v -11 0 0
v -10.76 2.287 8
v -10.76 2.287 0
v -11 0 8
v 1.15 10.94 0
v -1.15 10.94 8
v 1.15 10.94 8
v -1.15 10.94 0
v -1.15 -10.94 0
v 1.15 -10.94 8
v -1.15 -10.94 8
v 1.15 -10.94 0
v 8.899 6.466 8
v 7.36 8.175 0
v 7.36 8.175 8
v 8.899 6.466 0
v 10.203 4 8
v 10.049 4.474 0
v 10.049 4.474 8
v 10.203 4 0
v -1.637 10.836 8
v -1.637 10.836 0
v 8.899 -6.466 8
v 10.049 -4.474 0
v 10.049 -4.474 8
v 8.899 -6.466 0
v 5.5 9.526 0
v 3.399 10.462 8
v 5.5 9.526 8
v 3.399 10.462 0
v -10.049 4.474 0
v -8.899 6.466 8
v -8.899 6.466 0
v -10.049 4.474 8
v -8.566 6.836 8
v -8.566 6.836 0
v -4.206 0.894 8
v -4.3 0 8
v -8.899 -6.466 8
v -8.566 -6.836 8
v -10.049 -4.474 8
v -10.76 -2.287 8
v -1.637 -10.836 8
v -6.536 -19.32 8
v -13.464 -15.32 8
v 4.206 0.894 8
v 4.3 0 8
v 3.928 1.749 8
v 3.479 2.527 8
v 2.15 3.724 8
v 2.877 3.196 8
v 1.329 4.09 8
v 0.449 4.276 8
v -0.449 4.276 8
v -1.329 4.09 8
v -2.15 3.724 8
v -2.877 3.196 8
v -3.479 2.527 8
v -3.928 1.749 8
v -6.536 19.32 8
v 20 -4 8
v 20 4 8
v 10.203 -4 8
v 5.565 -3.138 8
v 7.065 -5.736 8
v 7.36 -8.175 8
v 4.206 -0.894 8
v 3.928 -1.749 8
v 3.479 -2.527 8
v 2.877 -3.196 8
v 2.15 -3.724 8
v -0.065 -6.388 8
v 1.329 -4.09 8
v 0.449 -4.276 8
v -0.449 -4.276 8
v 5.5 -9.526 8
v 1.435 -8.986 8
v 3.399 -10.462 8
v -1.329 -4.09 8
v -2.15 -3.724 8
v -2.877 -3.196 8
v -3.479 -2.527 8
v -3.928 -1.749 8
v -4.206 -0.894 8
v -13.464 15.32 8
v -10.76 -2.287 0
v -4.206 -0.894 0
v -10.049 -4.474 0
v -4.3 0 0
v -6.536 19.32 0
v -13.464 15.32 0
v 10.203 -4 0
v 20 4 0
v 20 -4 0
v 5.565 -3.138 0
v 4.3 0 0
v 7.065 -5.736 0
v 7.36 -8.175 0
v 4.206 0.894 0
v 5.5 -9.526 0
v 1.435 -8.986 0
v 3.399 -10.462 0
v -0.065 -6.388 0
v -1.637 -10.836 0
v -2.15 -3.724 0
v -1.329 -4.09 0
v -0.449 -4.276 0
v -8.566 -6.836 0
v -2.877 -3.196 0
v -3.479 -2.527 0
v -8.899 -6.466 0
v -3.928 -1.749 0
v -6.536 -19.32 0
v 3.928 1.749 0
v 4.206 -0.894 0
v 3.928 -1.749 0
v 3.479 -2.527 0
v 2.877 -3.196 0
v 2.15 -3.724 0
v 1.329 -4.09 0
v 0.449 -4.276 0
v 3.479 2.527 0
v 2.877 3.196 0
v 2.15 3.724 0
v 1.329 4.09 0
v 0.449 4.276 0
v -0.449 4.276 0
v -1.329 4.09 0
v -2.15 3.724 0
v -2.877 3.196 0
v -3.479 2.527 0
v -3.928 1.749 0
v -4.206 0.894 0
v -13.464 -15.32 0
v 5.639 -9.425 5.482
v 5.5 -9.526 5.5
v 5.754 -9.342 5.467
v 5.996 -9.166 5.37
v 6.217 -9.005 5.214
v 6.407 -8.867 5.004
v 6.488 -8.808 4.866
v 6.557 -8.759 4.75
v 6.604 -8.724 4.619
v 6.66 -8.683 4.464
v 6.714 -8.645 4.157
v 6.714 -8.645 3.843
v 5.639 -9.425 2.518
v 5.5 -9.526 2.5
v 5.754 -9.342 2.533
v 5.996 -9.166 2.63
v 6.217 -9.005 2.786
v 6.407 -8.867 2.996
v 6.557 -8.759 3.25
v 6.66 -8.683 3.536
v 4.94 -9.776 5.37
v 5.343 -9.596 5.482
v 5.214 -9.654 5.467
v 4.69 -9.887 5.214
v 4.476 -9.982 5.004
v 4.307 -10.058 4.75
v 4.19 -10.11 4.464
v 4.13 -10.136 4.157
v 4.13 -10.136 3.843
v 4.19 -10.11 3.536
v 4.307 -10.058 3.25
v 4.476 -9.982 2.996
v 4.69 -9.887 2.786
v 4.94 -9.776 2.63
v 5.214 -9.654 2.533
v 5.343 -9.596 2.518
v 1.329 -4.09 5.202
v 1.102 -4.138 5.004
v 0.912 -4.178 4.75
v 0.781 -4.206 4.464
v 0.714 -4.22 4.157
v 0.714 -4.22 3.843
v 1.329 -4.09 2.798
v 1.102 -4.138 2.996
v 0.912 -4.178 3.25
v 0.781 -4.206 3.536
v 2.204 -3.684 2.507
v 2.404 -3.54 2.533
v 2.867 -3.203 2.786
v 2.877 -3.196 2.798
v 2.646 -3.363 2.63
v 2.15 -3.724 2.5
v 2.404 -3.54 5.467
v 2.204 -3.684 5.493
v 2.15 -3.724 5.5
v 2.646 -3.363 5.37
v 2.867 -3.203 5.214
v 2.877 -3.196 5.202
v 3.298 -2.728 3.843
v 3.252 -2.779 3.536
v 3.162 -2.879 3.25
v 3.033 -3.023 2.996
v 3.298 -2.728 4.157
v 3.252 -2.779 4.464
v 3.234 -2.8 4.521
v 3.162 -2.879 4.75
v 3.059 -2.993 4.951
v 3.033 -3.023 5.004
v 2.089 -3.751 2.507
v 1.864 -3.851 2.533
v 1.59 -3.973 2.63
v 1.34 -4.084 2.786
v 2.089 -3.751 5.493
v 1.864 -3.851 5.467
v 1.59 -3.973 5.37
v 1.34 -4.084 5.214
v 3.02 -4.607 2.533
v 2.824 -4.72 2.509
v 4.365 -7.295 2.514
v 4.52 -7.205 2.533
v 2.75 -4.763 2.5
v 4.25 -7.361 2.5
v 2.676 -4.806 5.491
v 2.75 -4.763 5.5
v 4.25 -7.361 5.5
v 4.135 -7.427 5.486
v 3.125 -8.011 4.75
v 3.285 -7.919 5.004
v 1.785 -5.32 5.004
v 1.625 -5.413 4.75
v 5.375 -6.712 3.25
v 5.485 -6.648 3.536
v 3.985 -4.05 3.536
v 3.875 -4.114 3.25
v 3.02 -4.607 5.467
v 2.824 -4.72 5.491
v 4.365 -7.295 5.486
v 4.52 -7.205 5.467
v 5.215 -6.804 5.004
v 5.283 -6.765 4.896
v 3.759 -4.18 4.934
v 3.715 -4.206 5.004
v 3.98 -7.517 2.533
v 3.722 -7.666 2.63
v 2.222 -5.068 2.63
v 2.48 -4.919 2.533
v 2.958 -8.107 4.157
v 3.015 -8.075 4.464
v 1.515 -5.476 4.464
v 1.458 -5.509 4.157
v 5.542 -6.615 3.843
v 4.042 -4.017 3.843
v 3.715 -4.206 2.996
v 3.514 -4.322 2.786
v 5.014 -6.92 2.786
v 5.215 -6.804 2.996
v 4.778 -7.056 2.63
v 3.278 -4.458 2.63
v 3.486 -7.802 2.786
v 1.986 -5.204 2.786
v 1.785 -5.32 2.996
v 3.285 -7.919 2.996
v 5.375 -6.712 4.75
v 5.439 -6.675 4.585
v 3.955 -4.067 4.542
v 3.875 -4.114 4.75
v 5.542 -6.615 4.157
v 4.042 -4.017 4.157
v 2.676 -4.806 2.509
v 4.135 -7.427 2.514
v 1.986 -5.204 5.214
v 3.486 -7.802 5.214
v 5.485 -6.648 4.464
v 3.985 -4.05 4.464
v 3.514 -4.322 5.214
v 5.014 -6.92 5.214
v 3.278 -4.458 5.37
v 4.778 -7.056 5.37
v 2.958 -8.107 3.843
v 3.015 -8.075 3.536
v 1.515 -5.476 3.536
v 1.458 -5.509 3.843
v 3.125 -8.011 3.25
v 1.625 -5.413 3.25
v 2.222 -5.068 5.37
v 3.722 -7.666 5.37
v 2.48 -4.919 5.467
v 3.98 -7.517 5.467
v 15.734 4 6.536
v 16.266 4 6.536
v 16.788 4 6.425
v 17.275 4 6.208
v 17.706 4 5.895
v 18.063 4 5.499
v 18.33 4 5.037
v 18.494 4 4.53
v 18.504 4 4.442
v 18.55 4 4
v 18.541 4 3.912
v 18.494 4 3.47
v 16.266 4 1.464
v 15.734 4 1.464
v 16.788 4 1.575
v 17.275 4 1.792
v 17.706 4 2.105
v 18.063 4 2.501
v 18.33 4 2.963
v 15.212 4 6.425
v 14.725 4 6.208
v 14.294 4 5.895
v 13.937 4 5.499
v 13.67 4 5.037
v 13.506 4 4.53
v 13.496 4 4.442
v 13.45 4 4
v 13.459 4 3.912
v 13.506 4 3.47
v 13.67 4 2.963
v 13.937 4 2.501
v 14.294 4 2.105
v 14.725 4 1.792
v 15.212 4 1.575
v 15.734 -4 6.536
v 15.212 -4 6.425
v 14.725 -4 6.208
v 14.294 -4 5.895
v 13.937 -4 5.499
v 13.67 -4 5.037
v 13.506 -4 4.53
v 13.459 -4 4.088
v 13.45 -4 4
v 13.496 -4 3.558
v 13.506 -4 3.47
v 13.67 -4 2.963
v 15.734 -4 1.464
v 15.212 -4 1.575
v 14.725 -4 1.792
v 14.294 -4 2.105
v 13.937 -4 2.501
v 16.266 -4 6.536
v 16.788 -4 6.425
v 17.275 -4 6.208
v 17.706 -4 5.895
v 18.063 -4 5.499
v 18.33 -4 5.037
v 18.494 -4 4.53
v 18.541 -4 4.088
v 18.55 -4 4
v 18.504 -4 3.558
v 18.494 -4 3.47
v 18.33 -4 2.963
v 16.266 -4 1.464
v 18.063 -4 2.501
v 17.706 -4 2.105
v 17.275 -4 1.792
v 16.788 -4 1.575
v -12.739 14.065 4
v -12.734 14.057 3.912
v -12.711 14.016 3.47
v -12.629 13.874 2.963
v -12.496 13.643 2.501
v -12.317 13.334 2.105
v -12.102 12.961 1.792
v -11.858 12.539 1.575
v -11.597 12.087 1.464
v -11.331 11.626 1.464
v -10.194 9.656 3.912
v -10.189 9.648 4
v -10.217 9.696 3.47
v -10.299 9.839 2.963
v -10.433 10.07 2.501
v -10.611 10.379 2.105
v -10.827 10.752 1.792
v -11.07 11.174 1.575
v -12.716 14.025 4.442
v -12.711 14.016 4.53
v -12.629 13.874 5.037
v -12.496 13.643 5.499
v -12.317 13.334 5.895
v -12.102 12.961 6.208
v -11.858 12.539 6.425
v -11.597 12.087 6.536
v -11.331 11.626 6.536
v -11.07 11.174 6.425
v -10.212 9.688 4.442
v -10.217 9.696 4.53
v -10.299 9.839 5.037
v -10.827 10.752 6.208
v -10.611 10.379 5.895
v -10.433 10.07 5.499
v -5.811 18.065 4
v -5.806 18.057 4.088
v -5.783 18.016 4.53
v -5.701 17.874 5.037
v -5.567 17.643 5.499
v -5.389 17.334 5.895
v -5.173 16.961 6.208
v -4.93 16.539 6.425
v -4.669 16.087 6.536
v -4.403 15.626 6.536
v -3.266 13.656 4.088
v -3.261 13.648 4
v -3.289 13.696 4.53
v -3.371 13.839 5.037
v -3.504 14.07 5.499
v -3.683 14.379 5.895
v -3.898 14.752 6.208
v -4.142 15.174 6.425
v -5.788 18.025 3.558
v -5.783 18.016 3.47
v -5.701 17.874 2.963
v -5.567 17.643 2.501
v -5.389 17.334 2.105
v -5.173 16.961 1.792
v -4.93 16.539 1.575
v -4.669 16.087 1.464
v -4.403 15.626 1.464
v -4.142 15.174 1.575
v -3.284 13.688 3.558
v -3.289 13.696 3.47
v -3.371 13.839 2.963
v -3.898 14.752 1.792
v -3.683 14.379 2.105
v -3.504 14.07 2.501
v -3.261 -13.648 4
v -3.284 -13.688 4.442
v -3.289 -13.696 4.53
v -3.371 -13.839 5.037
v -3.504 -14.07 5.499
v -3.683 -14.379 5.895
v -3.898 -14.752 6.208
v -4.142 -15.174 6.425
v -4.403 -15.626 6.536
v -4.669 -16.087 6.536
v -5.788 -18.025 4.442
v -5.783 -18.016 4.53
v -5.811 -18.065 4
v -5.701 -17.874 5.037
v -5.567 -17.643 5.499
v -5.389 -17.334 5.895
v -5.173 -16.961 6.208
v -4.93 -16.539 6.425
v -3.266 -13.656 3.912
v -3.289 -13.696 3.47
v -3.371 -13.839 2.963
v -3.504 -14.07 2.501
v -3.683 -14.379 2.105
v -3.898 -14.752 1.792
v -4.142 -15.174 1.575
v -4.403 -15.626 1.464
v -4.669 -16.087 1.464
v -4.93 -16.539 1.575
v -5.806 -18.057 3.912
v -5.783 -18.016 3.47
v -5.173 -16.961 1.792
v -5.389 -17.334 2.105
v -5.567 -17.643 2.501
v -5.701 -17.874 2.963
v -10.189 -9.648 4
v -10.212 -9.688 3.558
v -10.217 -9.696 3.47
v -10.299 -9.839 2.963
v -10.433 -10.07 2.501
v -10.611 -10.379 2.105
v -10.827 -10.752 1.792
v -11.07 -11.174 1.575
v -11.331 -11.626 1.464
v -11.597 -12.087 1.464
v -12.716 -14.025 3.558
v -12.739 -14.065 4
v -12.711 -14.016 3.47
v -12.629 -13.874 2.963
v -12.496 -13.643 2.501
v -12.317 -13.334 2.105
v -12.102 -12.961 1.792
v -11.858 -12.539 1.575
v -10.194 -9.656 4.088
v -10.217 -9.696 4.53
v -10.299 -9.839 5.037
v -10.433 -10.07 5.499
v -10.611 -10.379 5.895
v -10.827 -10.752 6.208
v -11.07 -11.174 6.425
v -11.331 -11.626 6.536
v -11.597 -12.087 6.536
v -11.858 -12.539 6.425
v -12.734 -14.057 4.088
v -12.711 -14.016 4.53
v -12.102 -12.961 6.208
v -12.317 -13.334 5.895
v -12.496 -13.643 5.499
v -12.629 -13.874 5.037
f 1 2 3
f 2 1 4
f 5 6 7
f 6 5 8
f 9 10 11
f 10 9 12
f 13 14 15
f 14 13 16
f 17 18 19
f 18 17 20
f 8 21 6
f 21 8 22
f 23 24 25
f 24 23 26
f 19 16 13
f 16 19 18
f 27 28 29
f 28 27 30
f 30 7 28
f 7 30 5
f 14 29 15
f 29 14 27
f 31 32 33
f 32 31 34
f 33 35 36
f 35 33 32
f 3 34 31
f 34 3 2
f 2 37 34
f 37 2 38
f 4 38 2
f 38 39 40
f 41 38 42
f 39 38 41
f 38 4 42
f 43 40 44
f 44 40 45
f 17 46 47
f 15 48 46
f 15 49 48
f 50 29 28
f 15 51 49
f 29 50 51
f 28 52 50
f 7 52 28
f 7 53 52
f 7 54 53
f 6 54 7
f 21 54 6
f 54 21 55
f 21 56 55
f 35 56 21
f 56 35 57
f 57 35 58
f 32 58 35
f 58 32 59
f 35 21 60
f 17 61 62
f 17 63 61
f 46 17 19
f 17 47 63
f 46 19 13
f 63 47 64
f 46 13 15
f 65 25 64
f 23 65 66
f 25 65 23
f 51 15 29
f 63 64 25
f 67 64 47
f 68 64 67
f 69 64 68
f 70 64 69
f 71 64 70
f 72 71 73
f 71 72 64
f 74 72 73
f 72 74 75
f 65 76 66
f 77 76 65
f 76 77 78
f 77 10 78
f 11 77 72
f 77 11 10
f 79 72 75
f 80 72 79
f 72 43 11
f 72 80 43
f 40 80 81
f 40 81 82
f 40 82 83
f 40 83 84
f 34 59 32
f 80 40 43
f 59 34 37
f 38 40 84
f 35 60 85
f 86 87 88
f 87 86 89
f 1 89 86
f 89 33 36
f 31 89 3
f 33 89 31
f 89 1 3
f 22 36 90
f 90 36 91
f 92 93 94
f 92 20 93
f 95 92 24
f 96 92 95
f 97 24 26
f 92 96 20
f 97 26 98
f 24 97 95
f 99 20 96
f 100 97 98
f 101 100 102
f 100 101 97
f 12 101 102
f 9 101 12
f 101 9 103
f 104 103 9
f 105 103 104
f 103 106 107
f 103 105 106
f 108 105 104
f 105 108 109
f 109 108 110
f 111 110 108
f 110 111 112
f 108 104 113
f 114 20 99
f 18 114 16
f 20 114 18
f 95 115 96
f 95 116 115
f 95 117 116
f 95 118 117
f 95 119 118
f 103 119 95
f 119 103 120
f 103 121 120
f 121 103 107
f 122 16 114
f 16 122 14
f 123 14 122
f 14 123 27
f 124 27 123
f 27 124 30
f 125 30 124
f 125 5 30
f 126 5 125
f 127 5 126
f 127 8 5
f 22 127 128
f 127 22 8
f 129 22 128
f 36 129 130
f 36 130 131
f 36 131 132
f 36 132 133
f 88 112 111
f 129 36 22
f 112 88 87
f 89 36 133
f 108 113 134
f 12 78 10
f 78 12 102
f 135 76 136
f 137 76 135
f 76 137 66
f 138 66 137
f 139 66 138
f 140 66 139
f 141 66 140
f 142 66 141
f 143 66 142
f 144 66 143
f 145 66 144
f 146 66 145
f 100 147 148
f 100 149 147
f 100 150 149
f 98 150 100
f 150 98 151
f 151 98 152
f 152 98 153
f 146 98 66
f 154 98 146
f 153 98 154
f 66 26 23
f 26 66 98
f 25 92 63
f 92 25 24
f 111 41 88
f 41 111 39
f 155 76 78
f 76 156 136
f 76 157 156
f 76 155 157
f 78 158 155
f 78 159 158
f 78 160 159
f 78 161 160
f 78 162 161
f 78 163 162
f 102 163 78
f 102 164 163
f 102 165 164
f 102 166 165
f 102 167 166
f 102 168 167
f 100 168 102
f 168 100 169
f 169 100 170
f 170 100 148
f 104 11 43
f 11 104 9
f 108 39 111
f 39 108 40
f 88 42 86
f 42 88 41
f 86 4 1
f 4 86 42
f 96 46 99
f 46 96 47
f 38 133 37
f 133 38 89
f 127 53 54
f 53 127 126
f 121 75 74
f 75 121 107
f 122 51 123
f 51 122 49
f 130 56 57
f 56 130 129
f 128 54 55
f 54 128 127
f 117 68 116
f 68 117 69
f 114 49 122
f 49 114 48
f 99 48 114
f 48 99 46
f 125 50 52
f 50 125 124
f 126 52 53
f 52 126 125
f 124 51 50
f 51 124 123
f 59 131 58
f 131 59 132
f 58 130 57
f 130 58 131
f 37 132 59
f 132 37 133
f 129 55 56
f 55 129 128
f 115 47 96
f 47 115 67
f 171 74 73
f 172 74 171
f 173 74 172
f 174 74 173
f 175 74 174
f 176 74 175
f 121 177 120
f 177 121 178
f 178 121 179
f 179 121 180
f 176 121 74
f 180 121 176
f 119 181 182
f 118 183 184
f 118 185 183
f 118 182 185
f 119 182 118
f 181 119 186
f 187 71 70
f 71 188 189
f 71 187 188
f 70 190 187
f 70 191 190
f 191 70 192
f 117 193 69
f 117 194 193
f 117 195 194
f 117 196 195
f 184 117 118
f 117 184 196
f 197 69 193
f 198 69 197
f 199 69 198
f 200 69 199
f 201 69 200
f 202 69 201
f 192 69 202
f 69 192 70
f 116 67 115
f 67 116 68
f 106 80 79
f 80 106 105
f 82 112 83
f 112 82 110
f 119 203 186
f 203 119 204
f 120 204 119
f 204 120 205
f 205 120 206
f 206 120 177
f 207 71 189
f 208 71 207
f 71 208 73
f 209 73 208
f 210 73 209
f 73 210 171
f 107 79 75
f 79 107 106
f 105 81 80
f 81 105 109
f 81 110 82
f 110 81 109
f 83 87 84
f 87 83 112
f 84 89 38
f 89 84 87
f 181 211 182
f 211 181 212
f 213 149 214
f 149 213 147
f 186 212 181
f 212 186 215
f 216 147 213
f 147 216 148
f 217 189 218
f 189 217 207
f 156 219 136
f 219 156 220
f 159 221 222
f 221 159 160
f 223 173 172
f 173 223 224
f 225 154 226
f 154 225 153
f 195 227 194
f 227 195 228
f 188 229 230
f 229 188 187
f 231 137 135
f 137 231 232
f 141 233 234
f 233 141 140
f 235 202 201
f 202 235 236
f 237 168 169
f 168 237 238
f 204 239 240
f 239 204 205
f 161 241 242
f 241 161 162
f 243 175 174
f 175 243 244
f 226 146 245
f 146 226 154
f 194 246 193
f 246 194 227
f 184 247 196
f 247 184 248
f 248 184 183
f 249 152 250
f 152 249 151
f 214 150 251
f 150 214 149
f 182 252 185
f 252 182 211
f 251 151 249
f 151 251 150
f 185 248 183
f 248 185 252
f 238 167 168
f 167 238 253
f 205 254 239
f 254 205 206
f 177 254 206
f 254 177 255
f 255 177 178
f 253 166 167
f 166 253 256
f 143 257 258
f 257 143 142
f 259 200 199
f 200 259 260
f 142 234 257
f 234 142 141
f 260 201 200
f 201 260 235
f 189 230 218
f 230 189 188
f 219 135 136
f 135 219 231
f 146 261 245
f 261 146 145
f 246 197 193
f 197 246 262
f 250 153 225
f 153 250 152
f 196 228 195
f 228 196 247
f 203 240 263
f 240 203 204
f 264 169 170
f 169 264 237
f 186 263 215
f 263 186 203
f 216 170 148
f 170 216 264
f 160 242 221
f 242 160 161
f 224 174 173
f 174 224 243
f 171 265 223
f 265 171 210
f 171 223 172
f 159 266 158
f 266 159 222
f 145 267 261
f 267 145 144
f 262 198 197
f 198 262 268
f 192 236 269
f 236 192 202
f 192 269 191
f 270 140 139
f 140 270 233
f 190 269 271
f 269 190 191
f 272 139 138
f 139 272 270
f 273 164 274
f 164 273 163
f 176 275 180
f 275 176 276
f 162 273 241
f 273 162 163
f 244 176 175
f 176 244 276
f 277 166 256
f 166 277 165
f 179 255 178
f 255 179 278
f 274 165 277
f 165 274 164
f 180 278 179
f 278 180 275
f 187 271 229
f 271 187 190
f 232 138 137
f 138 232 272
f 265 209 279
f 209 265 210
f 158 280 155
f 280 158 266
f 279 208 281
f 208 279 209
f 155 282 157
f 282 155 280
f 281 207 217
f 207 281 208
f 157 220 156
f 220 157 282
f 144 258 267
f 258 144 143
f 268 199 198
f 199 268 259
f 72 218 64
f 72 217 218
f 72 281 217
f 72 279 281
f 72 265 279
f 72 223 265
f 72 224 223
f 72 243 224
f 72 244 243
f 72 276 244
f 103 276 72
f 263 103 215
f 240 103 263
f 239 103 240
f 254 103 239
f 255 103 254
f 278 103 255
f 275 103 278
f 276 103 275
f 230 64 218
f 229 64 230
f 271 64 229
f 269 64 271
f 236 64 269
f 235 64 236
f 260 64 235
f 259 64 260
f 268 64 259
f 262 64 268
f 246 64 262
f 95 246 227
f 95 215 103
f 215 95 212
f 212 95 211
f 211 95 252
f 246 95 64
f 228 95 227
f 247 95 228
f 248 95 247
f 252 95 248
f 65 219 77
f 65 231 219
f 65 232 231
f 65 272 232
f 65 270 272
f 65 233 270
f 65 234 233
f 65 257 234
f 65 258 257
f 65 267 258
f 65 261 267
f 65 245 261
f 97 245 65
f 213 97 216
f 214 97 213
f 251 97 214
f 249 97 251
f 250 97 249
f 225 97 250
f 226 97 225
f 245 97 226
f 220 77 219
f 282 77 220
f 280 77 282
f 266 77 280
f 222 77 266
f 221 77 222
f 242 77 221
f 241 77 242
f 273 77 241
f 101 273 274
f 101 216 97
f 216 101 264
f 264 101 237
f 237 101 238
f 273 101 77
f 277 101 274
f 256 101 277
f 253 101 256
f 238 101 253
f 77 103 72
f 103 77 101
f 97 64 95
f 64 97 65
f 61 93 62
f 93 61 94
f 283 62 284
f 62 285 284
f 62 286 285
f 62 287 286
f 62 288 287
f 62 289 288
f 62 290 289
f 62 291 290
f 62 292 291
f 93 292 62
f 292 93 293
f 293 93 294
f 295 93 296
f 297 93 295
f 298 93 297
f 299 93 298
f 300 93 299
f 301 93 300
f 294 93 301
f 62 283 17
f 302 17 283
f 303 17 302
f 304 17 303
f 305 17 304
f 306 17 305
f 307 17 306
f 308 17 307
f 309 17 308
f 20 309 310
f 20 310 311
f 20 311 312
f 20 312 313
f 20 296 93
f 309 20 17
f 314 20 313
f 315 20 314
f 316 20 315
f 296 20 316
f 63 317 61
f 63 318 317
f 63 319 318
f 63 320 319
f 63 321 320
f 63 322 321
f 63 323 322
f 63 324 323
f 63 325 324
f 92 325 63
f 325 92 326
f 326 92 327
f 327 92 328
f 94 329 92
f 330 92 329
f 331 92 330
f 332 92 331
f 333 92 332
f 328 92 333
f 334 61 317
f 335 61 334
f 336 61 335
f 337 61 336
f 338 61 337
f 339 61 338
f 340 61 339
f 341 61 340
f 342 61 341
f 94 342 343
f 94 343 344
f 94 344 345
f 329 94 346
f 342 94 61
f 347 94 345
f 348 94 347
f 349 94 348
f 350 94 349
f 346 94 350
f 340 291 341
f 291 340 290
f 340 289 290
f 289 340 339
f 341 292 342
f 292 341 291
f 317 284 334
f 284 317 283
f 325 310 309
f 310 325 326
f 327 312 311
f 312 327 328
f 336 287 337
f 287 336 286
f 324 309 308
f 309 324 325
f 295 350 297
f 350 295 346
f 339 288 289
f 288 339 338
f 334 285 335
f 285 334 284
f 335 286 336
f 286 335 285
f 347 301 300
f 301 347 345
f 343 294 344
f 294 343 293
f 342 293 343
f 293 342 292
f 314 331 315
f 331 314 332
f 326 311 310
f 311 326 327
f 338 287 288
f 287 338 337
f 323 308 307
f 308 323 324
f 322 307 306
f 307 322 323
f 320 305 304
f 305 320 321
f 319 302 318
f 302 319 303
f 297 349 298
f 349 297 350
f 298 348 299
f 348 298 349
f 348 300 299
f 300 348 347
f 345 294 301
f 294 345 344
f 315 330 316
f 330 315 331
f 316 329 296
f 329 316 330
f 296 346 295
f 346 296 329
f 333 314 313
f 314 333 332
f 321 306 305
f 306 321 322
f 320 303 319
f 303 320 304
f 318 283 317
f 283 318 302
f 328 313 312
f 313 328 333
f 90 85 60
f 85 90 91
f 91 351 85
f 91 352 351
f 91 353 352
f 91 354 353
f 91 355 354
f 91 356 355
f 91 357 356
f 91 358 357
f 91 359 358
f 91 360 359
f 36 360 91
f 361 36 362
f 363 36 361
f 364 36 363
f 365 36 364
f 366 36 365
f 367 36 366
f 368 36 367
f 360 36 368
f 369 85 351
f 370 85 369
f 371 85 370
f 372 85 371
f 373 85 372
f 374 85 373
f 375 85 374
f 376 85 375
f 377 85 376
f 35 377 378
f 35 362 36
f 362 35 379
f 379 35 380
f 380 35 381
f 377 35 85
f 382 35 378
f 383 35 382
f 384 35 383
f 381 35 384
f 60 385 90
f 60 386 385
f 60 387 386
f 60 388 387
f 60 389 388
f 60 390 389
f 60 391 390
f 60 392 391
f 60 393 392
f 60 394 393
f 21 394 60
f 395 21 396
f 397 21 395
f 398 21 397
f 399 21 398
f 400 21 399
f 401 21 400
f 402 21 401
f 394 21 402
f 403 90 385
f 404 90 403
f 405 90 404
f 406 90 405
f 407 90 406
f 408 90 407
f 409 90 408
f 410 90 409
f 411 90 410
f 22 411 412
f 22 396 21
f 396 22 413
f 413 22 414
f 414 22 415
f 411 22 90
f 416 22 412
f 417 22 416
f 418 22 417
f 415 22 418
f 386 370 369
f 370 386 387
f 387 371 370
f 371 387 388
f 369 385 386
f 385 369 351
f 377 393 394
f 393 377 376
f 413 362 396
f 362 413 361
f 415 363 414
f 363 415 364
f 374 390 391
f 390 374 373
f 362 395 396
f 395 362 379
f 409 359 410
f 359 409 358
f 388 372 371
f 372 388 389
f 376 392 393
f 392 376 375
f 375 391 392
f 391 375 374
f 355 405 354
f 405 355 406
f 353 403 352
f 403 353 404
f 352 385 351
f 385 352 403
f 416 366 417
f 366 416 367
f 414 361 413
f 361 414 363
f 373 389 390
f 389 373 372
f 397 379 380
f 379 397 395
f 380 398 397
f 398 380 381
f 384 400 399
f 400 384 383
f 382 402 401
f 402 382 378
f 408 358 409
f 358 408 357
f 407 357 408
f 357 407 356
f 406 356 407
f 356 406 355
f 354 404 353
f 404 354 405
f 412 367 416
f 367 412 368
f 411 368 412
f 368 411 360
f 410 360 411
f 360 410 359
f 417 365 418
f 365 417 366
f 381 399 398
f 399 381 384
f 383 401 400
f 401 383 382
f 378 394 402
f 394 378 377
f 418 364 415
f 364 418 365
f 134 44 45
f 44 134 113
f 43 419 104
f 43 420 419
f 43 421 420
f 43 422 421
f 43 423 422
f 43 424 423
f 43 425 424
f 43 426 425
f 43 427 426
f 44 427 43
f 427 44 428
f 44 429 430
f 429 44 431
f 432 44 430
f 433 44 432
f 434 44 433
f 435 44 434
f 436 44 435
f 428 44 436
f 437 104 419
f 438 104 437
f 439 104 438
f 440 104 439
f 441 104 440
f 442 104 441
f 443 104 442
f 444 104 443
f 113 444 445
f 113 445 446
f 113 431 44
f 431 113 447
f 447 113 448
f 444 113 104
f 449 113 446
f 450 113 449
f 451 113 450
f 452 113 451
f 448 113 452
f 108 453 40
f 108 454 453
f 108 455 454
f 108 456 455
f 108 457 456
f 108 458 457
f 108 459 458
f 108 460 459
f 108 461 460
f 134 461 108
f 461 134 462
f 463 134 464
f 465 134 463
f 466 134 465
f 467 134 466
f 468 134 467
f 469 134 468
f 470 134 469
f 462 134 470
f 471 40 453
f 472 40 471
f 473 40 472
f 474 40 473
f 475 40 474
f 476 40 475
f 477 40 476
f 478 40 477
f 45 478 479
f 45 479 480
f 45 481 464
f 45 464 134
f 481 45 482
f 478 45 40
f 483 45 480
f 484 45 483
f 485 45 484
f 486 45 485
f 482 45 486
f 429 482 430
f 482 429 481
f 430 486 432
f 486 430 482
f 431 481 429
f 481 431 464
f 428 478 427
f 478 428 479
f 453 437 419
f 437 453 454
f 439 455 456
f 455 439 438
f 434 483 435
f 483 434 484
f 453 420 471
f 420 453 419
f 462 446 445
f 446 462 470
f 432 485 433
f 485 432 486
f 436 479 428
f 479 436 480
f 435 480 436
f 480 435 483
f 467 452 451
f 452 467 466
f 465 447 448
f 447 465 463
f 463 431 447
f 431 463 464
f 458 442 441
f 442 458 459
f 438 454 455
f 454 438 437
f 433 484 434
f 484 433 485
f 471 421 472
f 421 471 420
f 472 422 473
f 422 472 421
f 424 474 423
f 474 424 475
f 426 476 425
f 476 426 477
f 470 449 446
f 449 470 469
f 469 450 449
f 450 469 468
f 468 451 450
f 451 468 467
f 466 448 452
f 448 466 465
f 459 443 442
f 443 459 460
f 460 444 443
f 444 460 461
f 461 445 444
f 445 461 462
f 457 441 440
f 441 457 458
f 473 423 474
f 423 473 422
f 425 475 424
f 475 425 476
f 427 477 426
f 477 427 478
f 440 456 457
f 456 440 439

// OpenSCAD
// Description: Tablet stylus holder for Tapster 2 Plus
// Project home: http://tapsterbot.com

beam_width    = 8;
hole_diameter = 5.1;
hole_radius   = hole_diameter / 2;

module beam(number_of_holes) {
    beam_length = number_of_holes * beam_width;
    difference() {
        // Draw the beam...
        translate([2,0,0])
        cube([beam_length-4,8,beam_width]);

        // Cut the holes...
        for (x=[10 : beam_width : beam_length]) {
            rotate([90,0,0])
            translate([x,beam_width/2,-10])
            cylinder(r=hole_radius, h=12, $fn=30);
        }
    }
}

union() {
  difference(){
      cylinder(r=11, h=8, $fn=30);

      translate([0,0,-5])
      cylinder(r=4.3, h=20, $fn=30);

      translate([0,0,4])
      rotate([60,90,0])
      cylinder(r=1.5, h=20, $fn=30);

      rotate(-60)
      translate([7,0,0])
      cube([3,6.5,30], center=true);
  }

  translate([6,-4,0])
  beam(2);

  rotate(120)
  translate([6,-4,0])
  beam(2);

  rotate(240)
  translate([6,-4,0])
  beam(2);
}
